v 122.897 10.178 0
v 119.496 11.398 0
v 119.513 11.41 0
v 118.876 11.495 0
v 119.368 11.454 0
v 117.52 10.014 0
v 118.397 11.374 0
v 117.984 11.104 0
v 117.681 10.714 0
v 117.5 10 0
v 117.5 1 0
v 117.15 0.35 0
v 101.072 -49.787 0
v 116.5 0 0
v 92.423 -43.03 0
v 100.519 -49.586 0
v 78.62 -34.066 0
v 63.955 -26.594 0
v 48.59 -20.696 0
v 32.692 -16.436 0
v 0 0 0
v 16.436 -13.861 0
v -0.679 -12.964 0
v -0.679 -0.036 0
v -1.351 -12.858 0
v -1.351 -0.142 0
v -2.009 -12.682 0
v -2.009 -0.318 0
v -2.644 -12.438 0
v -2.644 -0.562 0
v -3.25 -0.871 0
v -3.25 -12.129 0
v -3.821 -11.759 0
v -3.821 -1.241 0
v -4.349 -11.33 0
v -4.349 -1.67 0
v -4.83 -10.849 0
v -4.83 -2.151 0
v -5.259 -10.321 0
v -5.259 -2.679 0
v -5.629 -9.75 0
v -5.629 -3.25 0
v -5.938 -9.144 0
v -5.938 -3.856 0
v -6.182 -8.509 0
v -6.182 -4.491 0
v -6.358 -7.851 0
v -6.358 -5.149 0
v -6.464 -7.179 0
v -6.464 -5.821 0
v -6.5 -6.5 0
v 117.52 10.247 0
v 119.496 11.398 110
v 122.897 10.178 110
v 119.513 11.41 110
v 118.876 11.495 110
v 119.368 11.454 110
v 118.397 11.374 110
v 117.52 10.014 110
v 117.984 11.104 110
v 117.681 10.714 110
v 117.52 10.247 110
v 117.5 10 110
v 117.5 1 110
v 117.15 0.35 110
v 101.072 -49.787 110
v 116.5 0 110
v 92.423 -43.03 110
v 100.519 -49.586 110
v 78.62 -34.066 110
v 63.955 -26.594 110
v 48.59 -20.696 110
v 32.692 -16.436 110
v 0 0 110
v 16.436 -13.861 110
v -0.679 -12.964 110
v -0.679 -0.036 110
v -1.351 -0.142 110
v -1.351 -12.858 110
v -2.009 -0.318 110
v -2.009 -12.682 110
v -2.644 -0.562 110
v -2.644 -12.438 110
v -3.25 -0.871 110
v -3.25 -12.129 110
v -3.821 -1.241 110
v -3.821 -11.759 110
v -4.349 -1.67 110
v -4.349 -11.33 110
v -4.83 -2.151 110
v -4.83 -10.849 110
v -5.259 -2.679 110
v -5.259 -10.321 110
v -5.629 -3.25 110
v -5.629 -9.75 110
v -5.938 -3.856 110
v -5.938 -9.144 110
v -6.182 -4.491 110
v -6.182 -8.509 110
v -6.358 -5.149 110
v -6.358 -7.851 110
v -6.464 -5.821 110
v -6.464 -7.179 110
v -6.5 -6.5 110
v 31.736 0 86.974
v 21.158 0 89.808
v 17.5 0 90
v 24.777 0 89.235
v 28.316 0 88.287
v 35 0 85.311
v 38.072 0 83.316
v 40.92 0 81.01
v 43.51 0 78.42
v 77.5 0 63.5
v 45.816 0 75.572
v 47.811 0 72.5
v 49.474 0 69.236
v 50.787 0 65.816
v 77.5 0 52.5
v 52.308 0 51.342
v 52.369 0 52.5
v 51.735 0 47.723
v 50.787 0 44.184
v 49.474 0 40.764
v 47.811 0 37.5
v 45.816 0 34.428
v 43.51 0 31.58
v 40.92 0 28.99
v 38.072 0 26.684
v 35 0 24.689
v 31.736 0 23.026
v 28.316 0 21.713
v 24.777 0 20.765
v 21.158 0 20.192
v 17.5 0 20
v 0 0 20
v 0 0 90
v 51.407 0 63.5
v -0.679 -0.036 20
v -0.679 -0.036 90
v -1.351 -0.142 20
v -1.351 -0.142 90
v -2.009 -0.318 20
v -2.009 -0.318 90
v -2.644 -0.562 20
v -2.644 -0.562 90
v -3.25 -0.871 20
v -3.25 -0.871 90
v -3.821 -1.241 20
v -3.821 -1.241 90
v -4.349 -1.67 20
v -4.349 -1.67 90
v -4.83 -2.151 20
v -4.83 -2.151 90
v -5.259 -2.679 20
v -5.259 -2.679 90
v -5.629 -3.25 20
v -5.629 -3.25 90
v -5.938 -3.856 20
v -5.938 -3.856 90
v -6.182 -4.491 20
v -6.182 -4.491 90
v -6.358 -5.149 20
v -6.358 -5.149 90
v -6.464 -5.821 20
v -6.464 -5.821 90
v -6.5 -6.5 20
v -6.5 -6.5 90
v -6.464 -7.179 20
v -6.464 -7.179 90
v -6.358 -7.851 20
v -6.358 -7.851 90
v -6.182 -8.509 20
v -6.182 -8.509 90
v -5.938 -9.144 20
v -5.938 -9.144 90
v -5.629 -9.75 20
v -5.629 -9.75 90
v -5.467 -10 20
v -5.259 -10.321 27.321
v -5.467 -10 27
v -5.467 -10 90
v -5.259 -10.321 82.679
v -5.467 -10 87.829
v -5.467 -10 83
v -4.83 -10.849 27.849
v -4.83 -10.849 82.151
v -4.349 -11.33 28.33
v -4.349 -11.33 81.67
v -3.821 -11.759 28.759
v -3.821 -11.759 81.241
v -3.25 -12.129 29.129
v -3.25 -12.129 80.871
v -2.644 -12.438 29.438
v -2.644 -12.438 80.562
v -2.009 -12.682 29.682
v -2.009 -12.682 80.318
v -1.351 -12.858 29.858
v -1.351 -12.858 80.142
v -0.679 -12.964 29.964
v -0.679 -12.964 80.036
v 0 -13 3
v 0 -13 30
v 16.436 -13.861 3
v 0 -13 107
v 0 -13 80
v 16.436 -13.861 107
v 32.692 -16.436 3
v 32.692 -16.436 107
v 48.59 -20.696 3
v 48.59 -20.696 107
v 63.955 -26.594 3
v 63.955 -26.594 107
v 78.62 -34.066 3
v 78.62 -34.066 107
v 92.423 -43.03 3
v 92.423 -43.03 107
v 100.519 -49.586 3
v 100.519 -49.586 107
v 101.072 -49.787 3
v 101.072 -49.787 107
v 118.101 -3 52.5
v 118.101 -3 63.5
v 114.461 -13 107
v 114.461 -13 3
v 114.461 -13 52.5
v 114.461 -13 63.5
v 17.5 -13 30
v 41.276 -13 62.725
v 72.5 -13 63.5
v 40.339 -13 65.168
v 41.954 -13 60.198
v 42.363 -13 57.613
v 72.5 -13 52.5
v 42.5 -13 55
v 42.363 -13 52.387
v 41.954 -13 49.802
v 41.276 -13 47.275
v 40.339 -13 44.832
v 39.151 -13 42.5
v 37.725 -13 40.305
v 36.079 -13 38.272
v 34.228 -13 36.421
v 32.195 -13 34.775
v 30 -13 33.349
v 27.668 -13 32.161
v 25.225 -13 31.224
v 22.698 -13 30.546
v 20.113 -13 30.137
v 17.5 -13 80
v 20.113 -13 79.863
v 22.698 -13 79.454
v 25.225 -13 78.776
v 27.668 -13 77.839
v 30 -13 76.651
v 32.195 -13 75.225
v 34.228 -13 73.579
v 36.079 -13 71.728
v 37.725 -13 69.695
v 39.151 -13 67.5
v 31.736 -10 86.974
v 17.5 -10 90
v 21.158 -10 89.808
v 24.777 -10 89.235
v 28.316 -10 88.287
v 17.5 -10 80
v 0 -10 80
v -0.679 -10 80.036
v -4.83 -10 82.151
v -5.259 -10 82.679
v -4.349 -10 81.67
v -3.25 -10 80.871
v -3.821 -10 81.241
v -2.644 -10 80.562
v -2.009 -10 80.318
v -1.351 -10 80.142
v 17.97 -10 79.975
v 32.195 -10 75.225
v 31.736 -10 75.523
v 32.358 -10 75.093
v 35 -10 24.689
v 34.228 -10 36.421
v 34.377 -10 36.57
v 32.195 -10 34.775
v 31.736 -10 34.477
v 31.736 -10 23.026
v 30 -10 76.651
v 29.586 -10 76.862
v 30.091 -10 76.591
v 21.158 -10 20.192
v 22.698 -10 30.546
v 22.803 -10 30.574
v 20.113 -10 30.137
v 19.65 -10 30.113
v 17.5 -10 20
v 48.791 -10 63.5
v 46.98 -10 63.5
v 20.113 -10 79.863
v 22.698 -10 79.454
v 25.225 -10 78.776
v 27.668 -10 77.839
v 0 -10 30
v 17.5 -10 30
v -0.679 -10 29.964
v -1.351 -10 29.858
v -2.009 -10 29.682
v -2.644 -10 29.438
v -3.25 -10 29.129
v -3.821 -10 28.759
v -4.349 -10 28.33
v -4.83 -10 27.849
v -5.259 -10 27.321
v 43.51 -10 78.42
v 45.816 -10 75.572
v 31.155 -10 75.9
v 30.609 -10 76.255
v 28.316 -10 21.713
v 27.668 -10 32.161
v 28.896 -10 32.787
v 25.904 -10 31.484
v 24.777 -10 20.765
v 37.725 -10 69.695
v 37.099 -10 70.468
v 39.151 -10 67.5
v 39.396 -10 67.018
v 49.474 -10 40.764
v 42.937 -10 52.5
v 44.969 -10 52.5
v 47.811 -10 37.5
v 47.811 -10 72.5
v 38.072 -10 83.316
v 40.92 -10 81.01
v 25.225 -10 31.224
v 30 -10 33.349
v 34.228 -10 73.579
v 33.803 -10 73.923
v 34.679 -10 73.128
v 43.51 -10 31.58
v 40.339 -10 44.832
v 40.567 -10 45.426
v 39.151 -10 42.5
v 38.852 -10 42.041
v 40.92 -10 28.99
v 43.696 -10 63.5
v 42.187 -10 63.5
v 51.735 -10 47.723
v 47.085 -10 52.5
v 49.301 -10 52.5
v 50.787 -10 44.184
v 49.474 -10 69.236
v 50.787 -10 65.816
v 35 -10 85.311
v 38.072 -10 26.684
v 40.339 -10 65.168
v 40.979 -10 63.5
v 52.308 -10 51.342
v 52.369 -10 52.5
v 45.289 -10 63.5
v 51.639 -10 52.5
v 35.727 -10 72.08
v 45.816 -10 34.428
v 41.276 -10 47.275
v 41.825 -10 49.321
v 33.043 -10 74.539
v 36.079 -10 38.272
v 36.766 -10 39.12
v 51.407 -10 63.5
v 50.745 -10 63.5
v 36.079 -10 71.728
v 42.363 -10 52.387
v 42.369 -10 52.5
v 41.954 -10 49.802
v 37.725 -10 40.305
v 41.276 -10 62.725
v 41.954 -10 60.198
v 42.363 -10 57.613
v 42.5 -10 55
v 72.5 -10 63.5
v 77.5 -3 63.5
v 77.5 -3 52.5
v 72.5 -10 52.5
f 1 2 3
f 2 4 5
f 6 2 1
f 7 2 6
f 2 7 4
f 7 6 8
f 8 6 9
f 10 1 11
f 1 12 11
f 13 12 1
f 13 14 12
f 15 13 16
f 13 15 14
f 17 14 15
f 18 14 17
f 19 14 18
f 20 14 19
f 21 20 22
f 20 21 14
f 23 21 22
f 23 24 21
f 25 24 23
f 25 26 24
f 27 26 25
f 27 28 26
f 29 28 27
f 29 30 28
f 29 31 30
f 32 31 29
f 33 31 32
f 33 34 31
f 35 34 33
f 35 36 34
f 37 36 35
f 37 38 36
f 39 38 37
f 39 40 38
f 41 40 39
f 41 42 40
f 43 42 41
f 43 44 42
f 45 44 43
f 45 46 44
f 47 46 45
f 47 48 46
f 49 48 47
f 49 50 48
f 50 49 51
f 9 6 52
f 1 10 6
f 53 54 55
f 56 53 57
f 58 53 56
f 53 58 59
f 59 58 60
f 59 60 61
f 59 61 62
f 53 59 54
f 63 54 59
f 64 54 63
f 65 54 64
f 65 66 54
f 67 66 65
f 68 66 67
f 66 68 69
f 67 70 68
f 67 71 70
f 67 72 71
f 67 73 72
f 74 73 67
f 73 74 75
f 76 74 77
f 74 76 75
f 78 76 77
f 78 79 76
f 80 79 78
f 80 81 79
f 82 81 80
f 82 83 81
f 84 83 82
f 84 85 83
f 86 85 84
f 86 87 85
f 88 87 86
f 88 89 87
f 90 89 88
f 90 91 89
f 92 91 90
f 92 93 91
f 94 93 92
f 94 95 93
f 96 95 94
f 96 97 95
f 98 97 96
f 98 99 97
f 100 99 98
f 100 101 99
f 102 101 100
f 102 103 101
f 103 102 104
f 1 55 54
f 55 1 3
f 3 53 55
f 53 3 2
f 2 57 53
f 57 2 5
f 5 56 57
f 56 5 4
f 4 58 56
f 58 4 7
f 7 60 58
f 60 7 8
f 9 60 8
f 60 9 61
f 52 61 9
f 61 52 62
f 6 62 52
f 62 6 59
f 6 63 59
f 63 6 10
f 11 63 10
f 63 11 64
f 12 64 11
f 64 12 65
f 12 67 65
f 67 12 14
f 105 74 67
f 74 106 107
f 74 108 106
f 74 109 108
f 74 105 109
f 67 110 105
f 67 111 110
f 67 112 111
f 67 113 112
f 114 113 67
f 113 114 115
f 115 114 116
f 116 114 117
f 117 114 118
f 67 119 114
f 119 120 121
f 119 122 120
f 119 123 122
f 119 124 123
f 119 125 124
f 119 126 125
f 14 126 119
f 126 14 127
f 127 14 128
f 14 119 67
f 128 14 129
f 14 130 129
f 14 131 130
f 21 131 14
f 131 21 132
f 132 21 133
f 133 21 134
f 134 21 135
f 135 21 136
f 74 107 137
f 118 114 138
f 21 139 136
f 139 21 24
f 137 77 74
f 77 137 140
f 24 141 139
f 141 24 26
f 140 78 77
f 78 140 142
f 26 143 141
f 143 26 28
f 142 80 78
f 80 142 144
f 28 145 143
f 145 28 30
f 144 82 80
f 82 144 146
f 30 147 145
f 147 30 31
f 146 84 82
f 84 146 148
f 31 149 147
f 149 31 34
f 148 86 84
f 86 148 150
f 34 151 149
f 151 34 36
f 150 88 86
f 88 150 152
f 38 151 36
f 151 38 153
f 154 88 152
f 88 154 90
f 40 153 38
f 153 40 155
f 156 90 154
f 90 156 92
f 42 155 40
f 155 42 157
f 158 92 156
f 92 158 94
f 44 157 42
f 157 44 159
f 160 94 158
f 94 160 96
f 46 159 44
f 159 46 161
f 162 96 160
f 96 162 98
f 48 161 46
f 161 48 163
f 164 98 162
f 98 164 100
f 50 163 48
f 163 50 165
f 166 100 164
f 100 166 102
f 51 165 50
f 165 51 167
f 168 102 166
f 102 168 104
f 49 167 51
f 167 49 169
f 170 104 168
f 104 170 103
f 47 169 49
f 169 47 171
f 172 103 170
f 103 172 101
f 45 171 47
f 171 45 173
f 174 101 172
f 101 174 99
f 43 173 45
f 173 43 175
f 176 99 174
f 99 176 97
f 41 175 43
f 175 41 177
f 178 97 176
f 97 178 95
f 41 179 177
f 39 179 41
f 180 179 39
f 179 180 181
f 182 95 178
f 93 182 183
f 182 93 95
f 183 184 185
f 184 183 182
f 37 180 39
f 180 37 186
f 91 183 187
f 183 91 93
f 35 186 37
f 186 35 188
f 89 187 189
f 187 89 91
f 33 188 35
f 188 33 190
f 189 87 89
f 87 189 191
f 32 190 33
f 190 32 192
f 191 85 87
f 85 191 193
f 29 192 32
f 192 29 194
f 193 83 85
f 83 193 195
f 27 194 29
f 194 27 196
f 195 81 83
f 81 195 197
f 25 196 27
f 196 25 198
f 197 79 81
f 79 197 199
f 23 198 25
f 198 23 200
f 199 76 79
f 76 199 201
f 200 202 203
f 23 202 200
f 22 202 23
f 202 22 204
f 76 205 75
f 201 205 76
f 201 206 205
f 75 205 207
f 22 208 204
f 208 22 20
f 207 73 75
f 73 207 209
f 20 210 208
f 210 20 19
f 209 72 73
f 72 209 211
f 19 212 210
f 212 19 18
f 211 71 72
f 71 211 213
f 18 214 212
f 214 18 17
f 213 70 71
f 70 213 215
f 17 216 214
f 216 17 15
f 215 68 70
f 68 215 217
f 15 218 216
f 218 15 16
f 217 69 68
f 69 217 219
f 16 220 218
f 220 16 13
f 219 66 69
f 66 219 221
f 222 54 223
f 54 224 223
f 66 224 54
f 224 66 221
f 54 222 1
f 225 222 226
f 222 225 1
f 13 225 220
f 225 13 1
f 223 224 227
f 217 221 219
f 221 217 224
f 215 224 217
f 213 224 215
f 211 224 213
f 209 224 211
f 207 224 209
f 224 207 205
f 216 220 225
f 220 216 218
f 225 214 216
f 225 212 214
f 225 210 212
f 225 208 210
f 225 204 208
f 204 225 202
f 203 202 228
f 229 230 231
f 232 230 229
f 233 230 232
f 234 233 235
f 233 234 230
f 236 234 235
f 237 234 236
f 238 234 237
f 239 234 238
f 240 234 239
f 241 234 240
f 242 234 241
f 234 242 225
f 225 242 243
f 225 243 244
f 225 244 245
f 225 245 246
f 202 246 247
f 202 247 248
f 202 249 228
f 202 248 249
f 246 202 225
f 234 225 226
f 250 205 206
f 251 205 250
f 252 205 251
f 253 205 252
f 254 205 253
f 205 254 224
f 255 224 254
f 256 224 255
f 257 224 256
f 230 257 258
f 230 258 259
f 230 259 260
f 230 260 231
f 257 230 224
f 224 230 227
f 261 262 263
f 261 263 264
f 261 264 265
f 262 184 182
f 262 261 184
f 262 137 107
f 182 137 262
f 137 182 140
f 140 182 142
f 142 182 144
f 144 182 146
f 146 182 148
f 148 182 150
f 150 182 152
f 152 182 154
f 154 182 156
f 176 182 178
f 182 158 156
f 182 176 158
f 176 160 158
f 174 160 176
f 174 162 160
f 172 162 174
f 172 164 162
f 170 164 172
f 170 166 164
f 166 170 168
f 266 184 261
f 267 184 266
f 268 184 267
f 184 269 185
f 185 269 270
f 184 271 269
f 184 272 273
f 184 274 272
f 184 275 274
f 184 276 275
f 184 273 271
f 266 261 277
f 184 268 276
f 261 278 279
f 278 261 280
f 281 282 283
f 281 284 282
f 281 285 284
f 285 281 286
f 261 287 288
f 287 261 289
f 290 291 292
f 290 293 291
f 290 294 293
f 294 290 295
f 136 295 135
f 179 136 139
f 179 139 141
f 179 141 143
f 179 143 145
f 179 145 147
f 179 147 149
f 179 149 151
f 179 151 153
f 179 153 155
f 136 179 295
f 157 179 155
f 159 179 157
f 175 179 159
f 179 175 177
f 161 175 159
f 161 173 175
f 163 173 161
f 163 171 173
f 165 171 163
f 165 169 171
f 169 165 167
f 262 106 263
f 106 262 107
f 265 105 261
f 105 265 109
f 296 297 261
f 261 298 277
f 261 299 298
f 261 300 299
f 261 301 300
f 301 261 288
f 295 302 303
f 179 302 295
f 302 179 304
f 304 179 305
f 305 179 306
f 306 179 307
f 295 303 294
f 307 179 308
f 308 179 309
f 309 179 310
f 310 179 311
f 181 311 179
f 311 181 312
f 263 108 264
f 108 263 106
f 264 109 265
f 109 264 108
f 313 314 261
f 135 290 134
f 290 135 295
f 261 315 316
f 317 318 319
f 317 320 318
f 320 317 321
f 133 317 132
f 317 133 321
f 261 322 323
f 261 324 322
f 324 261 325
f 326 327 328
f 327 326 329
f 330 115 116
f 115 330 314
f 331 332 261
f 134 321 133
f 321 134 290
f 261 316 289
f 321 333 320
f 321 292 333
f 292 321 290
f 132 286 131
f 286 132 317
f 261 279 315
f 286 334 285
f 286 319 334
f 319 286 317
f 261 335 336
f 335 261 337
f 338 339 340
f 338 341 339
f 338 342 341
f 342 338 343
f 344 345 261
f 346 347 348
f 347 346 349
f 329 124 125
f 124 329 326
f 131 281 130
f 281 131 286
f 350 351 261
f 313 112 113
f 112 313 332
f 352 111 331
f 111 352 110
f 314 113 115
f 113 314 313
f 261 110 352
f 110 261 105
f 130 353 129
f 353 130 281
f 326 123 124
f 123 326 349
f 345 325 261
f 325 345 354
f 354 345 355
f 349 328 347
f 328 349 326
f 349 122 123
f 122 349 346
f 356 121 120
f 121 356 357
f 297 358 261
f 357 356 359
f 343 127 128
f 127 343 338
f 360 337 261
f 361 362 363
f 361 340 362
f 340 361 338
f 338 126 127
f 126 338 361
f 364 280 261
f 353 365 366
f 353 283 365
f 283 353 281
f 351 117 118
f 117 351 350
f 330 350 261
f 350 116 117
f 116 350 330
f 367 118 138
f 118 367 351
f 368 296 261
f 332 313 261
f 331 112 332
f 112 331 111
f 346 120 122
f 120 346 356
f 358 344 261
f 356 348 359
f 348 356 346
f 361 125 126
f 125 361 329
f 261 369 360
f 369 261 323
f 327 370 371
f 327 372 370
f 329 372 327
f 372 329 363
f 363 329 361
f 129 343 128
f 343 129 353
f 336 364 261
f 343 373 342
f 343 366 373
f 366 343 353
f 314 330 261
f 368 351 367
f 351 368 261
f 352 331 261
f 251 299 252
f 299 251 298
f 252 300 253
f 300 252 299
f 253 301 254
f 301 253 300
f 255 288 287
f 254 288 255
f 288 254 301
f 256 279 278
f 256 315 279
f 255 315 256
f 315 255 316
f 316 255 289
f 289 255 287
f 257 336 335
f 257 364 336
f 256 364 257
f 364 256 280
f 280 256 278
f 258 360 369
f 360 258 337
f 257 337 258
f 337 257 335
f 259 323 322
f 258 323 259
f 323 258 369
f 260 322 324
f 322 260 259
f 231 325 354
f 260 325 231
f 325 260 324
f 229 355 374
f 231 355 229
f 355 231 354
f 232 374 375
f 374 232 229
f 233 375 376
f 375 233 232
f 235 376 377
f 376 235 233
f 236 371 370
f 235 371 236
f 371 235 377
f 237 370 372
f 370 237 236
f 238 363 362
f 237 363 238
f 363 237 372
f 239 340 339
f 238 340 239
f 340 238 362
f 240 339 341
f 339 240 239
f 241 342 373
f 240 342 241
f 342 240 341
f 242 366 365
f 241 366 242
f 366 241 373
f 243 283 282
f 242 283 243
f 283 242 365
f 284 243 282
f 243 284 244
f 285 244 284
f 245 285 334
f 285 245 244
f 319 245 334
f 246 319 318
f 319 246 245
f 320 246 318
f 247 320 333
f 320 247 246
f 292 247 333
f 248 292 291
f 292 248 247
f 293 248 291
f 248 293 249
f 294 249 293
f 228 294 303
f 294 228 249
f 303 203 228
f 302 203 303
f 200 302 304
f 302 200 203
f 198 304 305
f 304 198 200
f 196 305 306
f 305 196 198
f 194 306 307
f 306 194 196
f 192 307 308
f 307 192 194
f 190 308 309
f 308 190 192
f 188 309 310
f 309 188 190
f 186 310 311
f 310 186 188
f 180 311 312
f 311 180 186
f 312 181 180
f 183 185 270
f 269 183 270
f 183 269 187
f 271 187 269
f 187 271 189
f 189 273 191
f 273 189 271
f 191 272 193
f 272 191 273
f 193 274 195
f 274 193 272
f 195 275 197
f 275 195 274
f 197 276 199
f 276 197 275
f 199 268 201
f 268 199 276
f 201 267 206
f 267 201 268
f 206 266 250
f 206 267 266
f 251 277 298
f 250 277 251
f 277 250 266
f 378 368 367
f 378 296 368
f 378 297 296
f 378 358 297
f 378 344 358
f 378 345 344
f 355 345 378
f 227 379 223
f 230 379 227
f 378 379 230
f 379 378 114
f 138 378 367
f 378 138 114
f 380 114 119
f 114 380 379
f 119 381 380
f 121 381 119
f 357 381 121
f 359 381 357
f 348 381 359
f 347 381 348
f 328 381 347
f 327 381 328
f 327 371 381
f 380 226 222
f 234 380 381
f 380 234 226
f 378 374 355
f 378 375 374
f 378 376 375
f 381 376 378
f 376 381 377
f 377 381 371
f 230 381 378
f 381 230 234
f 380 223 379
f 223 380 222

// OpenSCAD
// Diameter of your wireless charger
QiDiameter = 70;
// Thickness of your wireless charger
QiThickness = 10;
// Width of the USB connector that you're using with the wireless charger. I would recommend giving an extra 1mm buffer over what you measured.
USBWidth = 11;
// We'll need this to position the wireless charger at the center of your phone.
PhoneHeight = 200;
PhoneWidth = 110;
// This determines the size of the base where the phone rest on. The default should be fine for most naked phones, but you may want to use a larger value if you have a thick casing.
PhoneThickness = 10;
// The default should be fine, but you can use a different value to have a thicker or thinner wall.
WallThickness = 3;
// The angle (in degrees) that the holder is tilted at.
Tilt = 70;

/* [Hidden] */
$fa = 6;
$fs = 0.5;


// Side Profile in 2D
module Side_Profile() {
 p2x = 0.25*QiDiameter + 0.5*PhoneHeight;
 p4x = p2x + WallThickness;
 p3x = p2x+1.5*cos(Tilt)+1.5;
 p3y = PhoneThickness+1.5*sin(Tilt);
 temp1 = (PhoneThickness-3*tan(Tilt))*cos(Tilt)+3;
 p5x = p3x + temp1*sin(Tilt);
 p5y = p3y - temp1*cos(Tilt);
 temp2 = sin(Tilt) * (p5x - (p5y + QiThickness + WallThickness) / tan(Tilt));
 p6x = temp2*sin(Tilt);
 p6y = -temp2*cos(Tilt) - QiThickness - WallThickness;
    
 difference() {
  union() {
   polygon([[0,0],
            [p2x - 1, 0],
            [p2x - 0.35, 0.35],  // Simple fillet
            [p2x, 1],
            [p2x, PhoneThickness], 
            [p3x, p3y],
            [p5x, p5y],
            [p6x, p6y],
            [0,-QiThickness - WallThickness]
           ]);
   translate([0,-0.5*(QiThickness+WallThickness),0]) circle(d=QiThickness+WallThickness);
   translate([p2x+1.5,PhoneThickness,0]) circle(d=3);
  }
  temp3 = 0.5 * temp2 / cos(Tilt);
  translate([0,-QiThickness - WallThickness - temp3,0]) circle(r=temp3);
 }
}

// Extruded and excess removed
module Extruded() {
 difference() {
  linear_extrude(height =PhoneWidth) Side_Profile();
  translate ([-100,-400-QiThickness-WallThickness,WallThickness]) resize([400,400,0]) cube(PhoneWidth-2*WallThickness);
 }
}

// Qi Hole cut
module Qi_Hole() {
 difference() {
  Extruded();
  translate([0,-QiThickness,QiDiameter + (PhoneWidth-QiDiameter)/2])
   rotate([-90,0,0])
    linear_extrude(height = 100)
     union() {
      polygon([[-100,0],
               [QiDiameter*0.25,0],
               [QiDiameter*0.25,QiDiameter],
               [-100,QiDiameter]
              ]);
      translate ([QiDiameter*0.25,QiDiameter/2,0]) circle(d=QiDiameter);
     }
  translate([0,-50,(PhoneWidth+QiDiameter)/2-QiThickness])
   rotate([-90,0,0])
    linear_extrude(height = 100)
     difference() {
      union() {
       polygon([[0,0],
                [QiDiameter*0.25,0],
                [QiDiameter*0.25,QiDiameter-2*QiThickness],
                [0,QiDiameter-2*QiThickness],
                [-QiThickness,QiDiameter-QiThickness],
                [-QiThickness,-QiThickness]
               ]);
       translate ([QiDiameter*0.25,(QiDiameter-2*QiThickness)/2,0]) circle(d=QiDiameter-2*QiThickness);
      }
      translate([0,-(QiThickness+WallThickness)/2,0]) circle(r=(QiThickness+WallThickness)/2);
      translate([0,QiDiameter-2*QiThickness+(QiThickness+WallThickness)/2,0]) circle(r=(QiThickness+WallThickness)/2);
     }
 }
}

  


// USB Hole cut
module USB_Hole() {
 difference() {
  Qi_Hole();
  translate([QiDiameter*0.75,0,PhoneWidth/2+WallThickness])
   resize([50,QiThickness*2,0])
    cube(USBWidth,center=true);
  translate([QiDiameter*0.75+30+20,-QiThickness-WallThickness,PhoneWidth/2+WallThickness])
   resize([60,QiThickness*2,0])
    cube(USBWidth,center=true);
 }
}

USB_Hole();
